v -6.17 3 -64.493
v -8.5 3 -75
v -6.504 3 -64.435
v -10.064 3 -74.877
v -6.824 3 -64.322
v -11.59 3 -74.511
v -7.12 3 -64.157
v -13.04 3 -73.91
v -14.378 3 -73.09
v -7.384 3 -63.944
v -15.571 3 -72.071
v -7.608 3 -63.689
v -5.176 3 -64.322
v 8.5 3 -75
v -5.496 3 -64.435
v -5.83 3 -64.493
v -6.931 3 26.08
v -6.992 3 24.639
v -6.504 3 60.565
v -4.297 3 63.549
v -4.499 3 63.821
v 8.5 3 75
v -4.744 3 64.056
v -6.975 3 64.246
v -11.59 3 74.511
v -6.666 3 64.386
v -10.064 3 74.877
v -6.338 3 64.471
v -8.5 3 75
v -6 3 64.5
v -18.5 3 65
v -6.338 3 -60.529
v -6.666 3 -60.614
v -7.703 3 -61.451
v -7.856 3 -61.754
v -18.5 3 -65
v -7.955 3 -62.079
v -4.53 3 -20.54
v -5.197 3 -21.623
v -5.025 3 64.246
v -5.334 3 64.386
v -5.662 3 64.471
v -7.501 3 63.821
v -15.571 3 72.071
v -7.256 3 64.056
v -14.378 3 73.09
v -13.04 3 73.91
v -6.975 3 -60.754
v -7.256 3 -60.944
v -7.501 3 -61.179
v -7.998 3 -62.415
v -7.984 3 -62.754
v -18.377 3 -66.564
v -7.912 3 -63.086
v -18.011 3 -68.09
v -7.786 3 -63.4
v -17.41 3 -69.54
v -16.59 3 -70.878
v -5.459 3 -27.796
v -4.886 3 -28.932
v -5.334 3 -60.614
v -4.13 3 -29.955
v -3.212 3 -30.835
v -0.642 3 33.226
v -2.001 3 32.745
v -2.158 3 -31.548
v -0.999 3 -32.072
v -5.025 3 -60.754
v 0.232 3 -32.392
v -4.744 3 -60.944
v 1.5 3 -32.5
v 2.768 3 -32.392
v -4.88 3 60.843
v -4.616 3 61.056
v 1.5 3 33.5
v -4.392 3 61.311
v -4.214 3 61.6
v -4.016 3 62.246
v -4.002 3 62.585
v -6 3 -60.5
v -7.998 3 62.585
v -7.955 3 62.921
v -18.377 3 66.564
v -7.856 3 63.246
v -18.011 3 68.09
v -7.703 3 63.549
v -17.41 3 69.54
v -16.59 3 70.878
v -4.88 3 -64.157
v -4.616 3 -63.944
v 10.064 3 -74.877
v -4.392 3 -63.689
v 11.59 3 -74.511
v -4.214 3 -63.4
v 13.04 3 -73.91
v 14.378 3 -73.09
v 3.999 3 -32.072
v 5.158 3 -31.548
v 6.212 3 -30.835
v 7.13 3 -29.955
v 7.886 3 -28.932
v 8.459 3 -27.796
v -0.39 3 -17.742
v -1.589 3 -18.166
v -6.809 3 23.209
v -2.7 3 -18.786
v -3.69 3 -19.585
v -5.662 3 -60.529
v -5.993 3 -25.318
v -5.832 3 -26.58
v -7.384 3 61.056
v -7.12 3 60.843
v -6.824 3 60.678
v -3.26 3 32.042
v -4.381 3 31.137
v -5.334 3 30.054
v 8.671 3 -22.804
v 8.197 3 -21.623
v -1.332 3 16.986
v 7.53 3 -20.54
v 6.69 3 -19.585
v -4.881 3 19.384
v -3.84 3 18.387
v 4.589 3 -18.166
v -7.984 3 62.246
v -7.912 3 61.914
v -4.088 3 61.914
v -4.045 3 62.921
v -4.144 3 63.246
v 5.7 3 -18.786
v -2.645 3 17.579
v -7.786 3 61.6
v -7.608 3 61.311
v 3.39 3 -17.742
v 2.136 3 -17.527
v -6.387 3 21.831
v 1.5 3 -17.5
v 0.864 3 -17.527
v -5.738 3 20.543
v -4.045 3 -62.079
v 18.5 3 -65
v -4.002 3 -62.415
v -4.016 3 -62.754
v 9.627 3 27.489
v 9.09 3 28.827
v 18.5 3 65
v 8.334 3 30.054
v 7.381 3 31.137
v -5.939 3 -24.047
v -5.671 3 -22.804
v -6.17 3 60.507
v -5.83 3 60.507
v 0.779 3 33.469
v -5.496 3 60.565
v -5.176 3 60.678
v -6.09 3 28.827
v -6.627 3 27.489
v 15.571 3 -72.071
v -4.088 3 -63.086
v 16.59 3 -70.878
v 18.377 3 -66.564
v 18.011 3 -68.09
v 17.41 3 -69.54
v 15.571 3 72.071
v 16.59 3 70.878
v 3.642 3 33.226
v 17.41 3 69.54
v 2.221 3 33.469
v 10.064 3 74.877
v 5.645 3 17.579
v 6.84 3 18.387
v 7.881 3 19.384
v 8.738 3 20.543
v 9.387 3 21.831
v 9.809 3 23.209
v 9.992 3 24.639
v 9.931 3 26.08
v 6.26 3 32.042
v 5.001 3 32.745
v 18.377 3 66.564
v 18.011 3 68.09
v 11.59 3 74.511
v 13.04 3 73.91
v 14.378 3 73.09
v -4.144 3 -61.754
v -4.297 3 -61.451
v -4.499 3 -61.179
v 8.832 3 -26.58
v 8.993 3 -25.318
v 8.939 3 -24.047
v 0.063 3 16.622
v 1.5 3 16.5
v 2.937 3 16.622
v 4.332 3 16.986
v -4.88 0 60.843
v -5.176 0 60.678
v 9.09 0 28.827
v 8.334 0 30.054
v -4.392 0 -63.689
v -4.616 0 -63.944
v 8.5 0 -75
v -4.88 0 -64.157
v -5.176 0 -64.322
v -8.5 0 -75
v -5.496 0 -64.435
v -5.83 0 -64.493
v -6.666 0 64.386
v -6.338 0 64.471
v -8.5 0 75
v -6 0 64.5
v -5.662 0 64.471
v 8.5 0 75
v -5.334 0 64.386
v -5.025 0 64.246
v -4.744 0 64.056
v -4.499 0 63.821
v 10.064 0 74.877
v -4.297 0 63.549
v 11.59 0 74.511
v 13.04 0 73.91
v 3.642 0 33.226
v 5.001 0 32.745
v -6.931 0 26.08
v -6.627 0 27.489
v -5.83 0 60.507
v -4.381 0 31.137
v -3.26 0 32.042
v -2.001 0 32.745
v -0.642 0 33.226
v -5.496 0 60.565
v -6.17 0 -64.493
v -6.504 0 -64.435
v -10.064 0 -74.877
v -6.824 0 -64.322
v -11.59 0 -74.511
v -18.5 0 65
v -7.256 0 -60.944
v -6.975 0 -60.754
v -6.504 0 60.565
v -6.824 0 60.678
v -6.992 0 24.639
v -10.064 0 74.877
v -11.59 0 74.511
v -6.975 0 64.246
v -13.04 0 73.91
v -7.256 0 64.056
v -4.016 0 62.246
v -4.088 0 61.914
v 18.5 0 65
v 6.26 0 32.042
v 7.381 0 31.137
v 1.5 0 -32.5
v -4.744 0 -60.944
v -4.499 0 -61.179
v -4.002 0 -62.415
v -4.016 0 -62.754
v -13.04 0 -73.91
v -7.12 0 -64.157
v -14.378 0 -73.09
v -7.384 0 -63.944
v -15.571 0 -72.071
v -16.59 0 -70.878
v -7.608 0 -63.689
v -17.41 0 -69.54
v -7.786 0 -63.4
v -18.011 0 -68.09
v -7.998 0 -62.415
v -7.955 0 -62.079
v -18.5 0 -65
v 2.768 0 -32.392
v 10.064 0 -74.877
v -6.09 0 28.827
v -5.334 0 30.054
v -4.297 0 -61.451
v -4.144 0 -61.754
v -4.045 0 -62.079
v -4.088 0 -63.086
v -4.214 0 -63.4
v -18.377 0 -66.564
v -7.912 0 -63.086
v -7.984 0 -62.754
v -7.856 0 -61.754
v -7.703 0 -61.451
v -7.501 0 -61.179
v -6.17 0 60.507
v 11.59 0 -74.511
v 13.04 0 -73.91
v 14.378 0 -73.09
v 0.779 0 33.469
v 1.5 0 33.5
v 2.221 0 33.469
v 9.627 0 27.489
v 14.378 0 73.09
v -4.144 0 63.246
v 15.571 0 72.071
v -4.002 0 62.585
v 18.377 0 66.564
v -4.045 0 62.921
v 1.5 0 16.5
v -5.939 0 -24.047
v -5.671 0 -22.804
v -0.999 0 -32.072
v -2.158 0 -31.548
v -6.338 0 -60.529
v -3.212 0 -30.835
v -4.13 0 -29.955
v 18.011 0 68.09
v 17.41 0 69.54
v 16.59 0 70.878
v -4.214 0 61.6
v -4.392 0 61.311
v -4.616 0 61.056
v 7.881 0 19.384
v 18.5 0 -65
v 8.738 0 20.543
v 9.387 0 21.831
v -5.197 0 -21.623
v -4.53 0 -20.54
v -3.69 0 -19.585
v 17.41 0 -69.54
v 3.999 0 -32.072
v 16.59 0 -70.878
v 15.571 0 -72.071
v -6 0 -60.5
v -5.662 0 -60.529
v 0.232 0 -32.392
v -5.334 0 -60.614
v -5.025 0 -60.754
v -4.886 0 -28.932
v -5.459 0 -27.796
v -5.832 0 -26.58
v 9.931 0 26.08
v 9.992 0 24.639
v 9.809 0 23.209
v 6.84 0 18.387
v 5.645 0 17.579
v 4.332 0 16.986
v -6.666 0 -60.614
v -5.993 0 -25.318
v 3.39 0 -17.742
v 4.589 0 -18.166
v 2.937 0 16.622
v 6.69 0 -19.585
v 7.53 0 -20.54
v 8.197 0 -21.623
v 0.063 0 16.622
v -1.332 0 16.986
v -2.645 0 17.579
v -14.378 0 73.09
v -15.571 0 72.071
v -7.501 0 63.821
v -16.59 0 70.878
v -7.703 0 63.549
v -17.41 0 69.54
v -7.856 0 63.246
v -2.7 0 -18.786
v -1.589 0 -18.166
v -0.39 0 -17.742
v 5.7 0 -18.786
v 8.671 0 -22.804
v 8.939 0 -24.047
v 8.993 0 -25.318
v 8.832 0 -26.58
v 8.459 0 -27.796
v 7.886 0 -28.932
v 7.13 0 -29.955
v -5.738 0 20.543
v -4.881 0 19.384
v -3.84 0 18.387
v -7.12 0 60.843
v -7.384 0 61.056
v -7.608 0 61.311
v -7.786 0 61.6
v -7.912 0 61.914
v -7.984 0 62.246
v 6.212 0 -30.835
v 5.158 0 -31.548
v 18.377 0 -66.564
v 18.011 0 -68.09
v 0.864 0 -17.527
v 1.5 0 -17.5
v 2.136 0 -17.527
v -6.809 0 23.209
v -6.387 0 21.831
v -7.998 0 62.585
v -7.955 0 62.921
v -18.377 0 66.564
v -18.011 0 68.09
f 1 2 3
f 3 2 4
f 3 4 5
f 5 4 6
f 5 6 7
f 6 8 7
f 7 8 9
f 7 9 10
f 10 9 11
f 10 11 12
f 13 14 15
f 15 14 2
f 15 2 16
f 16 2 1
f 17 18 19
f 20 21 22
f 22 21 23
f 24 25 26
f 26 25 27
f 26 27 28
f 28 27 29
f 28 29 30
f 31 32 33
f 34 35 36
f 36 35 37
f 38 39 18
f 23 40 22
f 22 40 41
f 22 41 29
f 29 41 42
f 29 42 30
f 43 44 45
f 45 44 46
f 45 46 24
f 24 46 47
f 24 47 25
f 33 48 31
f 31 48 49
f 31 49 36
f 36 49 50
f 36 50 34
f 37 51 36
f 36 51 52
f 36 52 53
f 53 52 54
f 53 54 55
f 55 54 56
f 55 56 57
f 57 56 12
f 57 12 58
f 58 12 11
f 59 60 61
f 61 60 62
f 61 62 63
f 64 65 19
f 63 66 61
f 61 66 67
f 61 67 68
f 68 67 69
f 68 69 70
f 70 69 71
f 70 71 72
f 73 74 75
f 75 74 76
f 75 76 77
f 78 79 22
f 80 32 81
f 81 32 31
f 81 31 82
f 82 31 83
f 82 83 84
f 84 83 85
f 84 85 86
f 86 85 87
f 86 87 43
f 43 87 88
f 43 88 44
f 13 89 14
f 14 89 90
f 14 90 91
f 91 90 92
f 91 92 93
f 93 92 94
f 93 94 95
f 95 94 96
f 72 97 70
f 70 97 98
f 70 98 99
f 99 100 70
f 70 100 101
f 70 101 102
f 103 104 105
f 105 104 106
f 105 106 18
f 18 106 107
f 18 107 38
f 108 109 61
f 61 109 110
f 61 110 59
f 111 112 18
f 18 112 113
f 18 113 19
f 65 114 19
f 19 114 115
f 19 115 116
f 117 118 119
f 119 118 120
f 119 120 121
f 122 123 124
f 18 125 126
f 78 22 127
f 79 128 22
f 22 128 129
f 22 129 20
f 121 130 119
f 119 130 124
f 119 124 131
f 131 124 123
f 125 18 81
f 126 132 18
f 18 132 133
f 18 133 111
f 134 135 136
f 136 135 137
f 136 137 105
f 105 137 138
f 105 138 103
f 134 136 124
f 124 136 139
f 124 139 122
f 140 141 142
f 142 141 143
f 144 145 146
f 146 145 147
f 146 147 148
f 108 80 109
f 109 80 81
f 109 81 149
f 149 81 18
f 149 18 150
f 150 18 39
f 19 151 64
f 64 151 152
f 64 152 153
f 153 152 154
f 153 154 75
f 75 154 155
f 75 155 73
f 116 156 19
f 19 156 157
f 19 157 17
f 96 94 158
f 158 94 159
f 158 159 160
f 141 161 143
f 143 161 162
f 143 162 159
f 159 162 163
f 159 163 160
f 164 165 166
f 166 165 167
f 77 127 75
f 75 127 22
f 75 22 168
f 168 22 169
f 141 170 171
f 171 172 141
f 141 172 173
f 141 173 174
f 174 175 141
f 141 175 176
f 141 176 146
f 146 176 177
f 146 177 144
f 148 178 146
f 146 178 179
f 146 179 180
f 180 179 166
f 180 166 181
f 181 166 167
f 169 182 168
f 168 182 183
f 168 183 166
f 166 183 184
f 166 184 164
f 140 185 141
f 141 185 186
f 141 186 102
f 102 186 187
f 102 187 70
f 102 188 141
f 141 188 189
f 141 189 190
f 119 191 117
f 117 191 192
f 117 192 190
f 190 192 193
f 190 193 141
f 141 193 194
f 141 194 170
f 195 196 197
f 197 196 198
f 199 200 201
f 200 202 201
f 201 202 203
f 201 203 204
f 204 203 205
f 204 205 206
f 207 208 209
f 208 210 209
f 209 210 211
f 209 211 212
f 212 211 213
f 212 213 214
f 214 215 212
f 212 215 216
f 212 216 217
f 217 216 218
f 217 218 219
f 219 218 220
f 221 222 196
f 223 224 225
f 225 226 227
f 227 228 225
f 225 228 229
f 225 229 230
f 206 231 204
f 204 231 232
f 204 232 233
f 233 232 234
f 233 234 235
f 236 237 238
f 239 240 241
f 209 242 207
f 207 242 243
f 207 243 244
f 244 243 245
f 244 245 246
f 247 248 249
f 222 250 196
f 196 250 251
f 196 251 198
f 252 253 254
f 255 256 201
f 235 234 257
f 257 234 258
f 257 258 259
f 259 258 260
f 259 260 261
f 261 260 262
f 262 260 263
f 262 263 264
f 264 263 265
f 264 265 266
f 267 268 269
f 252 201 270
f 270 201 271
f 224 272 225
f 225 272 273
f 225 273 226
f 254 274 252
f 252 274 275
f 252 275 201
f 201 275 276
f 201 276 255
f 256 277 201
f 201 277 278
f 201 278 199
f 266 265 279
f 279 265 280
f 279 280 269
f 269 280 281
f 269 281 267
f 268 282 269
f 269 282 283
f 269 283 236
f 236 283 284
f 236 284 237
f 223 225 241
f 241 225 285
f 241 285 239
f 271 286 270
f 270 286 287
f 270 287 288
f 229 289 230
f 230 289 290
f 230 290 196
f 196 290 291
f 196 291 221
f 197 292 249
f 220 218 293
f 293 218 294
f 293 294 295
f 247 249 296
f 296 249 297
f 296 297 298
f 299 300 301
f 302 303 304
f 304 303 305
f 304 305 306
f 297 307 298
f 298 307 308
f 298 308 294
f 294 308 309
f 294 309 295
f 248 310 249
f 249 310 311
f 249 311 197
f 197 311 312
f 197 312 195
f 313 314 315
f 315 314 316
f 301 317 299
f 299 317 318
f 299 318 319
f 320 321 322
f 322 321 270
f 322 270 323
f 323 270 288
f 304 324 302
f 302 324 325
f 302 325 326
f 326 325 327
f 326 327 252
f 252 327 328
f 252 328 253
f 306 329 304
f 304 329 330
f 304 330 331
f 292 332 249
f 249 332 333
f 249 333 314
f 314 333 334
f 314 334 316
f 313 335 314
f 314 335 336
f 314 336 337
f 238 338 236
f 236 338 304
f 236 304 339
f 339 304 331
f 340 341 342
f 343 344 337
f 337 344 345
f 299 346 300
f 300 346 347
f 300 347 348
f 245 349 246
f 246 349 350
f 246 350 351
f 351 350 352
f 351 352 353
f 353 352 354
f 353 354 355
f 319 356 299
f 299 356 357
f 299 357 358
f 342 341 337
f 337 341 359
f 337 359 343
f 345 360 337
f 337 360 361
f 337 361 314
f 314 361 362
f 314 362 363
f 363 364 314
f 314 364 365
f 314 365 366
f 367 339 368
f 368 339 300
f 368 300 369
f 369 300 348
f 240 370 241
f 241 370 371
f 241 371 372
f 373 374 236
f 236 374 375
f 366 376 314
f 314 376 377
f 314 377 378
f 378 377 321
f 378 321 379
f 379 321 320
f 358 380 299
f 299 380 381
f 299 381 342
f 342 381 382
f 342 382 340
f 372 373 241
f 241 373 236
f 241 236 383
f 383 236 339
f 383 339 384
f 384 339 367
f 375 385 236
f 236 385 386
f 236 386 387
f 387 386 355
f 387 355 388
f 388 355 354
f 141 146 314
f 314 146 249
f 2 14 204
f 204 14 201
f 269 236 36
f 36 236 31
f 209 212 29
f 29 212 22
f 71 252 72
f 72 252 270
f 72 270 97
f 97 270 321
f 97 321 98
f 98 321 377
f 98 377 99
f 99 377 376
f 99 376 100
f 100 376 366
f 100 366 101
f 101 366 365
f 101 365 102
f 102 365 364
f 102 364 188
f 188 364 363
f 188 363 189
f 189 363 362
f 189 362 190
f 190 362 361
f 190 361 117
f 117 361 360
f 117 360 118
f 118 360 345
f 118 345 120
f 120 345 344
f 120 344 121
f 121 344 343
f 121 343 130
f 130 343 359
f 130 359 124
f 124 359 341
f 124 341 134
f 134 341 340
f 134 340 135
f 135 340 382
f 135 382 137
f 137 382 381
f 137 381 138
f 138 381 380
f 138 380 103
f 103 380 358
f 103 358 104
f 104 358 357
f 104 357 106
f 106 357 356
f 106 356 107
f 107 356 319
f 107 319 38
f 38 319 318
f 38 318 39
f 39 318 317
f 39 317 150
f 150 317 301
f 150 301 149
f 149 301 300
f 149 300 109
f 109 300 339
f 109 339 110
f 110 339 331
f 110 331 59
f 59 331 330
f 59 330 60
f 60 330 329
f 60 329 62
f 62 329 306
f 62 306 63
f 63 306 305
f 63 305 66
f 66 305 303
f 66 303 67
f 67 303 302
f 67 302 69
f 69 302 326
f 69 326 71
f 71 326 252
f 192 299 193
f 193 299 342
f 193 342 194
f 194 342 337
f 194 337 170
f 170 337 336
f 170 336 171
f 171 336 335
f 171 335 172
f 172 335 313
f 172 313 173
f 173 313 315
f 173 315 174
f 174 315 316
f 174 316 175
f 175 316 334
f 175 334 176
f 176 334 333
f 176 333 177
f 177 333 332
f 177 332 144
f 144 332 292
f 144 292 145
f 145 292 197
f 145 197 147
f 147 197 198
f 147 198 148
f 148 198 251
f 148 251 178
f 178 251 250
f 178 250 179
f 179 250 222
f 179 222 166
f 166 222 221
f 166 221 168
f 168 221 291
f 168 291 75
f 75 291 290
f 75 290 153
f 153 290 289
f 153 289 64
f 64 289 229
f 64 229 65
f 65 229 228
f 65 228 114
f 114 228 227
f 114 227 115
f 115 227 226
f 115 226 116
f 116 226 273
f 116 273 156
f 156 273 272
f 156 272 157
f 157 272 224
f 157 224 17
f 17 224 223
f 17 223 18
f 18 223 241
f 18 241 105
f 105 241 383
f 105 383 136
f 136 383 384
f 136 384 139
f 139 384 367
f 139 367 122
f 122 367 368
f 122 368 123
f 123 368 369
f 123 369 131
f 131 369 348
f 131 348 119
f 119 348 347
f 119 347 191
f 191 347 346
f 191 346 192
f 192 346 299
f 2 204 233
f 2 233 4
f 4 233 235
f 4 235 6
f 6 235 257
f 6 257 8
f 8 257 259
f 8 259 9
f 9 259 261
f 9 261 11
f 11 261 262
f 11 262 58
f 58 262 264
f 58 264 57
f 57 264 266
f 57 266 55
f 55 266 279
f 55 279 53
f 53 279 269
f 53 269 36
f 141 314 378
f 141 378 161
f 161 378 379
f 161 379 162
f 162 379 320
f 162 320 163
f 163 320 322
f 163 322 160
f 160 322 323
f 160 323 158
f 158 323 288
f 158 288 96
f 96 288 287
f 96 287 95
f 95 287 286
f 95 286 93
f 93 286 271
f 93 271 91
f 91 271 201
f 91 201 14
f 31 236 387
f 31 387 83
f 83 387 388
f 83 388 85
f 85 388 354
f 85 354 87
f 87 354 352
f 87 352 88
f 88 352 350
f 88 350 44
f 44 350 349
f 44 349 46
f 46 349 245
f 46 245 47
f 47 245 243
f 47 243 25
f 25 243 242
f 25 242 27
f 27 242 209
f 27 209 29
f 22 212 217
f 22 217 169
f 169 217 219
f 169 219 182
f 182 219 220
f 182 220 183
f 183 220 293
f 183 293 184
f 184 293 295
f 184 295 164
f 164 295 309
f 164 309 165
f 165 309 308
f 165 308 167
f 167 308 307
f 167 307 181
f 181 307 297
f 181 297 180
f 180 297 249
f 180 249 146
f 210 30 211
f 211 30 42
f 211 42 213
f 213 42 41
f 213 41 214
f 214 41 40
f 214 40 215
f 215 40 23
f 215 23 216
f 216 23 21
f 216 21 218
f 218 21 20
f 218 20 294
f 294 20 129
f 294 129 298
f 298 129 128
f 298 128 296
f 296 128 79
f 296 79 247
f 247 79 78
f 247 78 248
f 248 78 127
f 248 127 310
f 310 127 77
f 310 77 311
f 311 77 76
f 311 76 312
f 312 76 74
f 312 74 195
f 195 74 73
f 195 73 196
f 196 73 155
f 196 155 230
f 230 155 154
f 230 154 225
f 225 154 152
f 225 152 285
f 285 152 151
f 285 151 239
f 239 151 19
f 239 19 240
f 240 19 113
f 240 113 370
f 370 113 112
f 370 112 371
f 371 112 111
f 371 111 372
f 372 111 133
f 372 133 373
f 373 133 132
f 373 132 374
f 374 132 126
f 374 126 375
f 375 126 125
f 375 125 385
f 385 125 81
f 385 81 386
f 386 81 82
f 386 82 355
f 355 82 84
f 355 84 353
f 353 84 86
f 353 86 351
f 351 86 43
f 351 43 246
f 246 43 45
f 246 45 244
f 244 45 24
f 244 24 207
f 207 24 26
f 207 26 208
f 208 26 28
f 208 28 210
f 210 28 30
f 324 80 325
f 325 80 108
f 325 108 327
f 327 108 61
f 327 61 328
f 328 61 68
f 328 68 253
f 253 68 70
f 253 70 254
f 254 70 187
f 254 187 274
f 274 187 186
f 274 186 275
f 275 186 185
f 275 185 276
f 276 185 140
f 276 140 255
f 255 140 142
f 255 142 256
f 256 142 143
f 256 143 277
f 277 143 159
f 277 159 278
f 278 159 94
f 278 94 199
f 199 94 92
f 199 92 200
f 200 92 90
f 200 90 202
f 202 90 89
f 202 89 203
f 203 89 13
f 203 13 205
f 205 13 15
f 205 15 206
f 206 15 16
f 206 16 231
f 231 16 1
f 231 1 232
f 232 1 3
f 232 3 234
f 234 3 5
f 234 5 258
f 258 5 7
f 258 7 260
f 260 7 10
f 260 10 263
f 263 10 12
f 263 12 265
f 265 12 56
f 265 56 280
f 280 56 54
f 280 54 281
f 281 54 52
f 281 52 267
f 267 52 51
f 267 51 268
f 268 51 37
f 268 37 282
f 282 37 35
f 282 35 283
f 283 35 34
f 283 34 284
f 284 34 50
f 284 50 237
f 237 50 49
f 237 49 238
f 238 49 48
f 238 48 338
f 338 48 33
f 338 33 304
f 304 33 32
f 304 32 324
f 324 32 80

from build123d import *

# Parameters (mm, degrees)
CROQUIS1_W              = 37
CROQUIS1_H              = 150
CROQUIS1_R              = 7.5
CROQUIS1_R_2            = 8.5
SALIENTE_EXTRUIR1_DEPTH = 3
REDONDEO1_R             = 10
CROQUIS2_R              = 2
CORTAR_EXTRUIR1_DEPTH   = 10


with BuildPart() as part:
    # Croquis1 → Saliente-Extruir1 (new body)
    with BuildSketch(Plane(origin=(0, 0, 0), x_dir=(1, 0, 0), z_dir=(0, 1, 0))):
        Rectangle(CROQUIS1_W, CROQUIS1_H)
        with Locations(Location((1.5, 25, 0), (0, 0, 270))):
            Circle(CROQUIS1_R, mode=Mode.SUBTRACT)
        with Locations(Location((1.5, -25, 0), (0, 0, 270))):
            Circle(CROQUIS1_R_2, mode=Mode.SUBTRACT)
    extrude(amount=SALIENTE_EXTRUIR1_DEPTH)

    # Redondeo1
    redondeo1_edges = [part.edges().sort_by_distance(p)[0] for p in [
        (18.5, 1.5, 75),
        (-18.5, 1.5, 75),
        (-18.5, 1.5, -75),
        (18.5, 1.5, -75),
    ]]
    fillet(redondeo1_edges, radius=REDONDEO1_R)

    # Croquis2 → Cortar-Extruir1 (cut)
    with BuildSketch(Plane(origin=(0, 3, 0), x_dir=(1, 0, 0), z_dir=(0, 1, 0))):
        with Locations(Location((-6, 62.5, 0), (0, 0, 270))):
            Circle(CROQUIS2_R)
        with Locations(Location((-6, -62.5, 0), (0, 0, 270))):
            Circle(CROQUIS2_R)
    extrude(amount=-CORTAR_EXTRUIR1_DEPTH, mode=Mode.SUBTRACT)


solid = part.part
